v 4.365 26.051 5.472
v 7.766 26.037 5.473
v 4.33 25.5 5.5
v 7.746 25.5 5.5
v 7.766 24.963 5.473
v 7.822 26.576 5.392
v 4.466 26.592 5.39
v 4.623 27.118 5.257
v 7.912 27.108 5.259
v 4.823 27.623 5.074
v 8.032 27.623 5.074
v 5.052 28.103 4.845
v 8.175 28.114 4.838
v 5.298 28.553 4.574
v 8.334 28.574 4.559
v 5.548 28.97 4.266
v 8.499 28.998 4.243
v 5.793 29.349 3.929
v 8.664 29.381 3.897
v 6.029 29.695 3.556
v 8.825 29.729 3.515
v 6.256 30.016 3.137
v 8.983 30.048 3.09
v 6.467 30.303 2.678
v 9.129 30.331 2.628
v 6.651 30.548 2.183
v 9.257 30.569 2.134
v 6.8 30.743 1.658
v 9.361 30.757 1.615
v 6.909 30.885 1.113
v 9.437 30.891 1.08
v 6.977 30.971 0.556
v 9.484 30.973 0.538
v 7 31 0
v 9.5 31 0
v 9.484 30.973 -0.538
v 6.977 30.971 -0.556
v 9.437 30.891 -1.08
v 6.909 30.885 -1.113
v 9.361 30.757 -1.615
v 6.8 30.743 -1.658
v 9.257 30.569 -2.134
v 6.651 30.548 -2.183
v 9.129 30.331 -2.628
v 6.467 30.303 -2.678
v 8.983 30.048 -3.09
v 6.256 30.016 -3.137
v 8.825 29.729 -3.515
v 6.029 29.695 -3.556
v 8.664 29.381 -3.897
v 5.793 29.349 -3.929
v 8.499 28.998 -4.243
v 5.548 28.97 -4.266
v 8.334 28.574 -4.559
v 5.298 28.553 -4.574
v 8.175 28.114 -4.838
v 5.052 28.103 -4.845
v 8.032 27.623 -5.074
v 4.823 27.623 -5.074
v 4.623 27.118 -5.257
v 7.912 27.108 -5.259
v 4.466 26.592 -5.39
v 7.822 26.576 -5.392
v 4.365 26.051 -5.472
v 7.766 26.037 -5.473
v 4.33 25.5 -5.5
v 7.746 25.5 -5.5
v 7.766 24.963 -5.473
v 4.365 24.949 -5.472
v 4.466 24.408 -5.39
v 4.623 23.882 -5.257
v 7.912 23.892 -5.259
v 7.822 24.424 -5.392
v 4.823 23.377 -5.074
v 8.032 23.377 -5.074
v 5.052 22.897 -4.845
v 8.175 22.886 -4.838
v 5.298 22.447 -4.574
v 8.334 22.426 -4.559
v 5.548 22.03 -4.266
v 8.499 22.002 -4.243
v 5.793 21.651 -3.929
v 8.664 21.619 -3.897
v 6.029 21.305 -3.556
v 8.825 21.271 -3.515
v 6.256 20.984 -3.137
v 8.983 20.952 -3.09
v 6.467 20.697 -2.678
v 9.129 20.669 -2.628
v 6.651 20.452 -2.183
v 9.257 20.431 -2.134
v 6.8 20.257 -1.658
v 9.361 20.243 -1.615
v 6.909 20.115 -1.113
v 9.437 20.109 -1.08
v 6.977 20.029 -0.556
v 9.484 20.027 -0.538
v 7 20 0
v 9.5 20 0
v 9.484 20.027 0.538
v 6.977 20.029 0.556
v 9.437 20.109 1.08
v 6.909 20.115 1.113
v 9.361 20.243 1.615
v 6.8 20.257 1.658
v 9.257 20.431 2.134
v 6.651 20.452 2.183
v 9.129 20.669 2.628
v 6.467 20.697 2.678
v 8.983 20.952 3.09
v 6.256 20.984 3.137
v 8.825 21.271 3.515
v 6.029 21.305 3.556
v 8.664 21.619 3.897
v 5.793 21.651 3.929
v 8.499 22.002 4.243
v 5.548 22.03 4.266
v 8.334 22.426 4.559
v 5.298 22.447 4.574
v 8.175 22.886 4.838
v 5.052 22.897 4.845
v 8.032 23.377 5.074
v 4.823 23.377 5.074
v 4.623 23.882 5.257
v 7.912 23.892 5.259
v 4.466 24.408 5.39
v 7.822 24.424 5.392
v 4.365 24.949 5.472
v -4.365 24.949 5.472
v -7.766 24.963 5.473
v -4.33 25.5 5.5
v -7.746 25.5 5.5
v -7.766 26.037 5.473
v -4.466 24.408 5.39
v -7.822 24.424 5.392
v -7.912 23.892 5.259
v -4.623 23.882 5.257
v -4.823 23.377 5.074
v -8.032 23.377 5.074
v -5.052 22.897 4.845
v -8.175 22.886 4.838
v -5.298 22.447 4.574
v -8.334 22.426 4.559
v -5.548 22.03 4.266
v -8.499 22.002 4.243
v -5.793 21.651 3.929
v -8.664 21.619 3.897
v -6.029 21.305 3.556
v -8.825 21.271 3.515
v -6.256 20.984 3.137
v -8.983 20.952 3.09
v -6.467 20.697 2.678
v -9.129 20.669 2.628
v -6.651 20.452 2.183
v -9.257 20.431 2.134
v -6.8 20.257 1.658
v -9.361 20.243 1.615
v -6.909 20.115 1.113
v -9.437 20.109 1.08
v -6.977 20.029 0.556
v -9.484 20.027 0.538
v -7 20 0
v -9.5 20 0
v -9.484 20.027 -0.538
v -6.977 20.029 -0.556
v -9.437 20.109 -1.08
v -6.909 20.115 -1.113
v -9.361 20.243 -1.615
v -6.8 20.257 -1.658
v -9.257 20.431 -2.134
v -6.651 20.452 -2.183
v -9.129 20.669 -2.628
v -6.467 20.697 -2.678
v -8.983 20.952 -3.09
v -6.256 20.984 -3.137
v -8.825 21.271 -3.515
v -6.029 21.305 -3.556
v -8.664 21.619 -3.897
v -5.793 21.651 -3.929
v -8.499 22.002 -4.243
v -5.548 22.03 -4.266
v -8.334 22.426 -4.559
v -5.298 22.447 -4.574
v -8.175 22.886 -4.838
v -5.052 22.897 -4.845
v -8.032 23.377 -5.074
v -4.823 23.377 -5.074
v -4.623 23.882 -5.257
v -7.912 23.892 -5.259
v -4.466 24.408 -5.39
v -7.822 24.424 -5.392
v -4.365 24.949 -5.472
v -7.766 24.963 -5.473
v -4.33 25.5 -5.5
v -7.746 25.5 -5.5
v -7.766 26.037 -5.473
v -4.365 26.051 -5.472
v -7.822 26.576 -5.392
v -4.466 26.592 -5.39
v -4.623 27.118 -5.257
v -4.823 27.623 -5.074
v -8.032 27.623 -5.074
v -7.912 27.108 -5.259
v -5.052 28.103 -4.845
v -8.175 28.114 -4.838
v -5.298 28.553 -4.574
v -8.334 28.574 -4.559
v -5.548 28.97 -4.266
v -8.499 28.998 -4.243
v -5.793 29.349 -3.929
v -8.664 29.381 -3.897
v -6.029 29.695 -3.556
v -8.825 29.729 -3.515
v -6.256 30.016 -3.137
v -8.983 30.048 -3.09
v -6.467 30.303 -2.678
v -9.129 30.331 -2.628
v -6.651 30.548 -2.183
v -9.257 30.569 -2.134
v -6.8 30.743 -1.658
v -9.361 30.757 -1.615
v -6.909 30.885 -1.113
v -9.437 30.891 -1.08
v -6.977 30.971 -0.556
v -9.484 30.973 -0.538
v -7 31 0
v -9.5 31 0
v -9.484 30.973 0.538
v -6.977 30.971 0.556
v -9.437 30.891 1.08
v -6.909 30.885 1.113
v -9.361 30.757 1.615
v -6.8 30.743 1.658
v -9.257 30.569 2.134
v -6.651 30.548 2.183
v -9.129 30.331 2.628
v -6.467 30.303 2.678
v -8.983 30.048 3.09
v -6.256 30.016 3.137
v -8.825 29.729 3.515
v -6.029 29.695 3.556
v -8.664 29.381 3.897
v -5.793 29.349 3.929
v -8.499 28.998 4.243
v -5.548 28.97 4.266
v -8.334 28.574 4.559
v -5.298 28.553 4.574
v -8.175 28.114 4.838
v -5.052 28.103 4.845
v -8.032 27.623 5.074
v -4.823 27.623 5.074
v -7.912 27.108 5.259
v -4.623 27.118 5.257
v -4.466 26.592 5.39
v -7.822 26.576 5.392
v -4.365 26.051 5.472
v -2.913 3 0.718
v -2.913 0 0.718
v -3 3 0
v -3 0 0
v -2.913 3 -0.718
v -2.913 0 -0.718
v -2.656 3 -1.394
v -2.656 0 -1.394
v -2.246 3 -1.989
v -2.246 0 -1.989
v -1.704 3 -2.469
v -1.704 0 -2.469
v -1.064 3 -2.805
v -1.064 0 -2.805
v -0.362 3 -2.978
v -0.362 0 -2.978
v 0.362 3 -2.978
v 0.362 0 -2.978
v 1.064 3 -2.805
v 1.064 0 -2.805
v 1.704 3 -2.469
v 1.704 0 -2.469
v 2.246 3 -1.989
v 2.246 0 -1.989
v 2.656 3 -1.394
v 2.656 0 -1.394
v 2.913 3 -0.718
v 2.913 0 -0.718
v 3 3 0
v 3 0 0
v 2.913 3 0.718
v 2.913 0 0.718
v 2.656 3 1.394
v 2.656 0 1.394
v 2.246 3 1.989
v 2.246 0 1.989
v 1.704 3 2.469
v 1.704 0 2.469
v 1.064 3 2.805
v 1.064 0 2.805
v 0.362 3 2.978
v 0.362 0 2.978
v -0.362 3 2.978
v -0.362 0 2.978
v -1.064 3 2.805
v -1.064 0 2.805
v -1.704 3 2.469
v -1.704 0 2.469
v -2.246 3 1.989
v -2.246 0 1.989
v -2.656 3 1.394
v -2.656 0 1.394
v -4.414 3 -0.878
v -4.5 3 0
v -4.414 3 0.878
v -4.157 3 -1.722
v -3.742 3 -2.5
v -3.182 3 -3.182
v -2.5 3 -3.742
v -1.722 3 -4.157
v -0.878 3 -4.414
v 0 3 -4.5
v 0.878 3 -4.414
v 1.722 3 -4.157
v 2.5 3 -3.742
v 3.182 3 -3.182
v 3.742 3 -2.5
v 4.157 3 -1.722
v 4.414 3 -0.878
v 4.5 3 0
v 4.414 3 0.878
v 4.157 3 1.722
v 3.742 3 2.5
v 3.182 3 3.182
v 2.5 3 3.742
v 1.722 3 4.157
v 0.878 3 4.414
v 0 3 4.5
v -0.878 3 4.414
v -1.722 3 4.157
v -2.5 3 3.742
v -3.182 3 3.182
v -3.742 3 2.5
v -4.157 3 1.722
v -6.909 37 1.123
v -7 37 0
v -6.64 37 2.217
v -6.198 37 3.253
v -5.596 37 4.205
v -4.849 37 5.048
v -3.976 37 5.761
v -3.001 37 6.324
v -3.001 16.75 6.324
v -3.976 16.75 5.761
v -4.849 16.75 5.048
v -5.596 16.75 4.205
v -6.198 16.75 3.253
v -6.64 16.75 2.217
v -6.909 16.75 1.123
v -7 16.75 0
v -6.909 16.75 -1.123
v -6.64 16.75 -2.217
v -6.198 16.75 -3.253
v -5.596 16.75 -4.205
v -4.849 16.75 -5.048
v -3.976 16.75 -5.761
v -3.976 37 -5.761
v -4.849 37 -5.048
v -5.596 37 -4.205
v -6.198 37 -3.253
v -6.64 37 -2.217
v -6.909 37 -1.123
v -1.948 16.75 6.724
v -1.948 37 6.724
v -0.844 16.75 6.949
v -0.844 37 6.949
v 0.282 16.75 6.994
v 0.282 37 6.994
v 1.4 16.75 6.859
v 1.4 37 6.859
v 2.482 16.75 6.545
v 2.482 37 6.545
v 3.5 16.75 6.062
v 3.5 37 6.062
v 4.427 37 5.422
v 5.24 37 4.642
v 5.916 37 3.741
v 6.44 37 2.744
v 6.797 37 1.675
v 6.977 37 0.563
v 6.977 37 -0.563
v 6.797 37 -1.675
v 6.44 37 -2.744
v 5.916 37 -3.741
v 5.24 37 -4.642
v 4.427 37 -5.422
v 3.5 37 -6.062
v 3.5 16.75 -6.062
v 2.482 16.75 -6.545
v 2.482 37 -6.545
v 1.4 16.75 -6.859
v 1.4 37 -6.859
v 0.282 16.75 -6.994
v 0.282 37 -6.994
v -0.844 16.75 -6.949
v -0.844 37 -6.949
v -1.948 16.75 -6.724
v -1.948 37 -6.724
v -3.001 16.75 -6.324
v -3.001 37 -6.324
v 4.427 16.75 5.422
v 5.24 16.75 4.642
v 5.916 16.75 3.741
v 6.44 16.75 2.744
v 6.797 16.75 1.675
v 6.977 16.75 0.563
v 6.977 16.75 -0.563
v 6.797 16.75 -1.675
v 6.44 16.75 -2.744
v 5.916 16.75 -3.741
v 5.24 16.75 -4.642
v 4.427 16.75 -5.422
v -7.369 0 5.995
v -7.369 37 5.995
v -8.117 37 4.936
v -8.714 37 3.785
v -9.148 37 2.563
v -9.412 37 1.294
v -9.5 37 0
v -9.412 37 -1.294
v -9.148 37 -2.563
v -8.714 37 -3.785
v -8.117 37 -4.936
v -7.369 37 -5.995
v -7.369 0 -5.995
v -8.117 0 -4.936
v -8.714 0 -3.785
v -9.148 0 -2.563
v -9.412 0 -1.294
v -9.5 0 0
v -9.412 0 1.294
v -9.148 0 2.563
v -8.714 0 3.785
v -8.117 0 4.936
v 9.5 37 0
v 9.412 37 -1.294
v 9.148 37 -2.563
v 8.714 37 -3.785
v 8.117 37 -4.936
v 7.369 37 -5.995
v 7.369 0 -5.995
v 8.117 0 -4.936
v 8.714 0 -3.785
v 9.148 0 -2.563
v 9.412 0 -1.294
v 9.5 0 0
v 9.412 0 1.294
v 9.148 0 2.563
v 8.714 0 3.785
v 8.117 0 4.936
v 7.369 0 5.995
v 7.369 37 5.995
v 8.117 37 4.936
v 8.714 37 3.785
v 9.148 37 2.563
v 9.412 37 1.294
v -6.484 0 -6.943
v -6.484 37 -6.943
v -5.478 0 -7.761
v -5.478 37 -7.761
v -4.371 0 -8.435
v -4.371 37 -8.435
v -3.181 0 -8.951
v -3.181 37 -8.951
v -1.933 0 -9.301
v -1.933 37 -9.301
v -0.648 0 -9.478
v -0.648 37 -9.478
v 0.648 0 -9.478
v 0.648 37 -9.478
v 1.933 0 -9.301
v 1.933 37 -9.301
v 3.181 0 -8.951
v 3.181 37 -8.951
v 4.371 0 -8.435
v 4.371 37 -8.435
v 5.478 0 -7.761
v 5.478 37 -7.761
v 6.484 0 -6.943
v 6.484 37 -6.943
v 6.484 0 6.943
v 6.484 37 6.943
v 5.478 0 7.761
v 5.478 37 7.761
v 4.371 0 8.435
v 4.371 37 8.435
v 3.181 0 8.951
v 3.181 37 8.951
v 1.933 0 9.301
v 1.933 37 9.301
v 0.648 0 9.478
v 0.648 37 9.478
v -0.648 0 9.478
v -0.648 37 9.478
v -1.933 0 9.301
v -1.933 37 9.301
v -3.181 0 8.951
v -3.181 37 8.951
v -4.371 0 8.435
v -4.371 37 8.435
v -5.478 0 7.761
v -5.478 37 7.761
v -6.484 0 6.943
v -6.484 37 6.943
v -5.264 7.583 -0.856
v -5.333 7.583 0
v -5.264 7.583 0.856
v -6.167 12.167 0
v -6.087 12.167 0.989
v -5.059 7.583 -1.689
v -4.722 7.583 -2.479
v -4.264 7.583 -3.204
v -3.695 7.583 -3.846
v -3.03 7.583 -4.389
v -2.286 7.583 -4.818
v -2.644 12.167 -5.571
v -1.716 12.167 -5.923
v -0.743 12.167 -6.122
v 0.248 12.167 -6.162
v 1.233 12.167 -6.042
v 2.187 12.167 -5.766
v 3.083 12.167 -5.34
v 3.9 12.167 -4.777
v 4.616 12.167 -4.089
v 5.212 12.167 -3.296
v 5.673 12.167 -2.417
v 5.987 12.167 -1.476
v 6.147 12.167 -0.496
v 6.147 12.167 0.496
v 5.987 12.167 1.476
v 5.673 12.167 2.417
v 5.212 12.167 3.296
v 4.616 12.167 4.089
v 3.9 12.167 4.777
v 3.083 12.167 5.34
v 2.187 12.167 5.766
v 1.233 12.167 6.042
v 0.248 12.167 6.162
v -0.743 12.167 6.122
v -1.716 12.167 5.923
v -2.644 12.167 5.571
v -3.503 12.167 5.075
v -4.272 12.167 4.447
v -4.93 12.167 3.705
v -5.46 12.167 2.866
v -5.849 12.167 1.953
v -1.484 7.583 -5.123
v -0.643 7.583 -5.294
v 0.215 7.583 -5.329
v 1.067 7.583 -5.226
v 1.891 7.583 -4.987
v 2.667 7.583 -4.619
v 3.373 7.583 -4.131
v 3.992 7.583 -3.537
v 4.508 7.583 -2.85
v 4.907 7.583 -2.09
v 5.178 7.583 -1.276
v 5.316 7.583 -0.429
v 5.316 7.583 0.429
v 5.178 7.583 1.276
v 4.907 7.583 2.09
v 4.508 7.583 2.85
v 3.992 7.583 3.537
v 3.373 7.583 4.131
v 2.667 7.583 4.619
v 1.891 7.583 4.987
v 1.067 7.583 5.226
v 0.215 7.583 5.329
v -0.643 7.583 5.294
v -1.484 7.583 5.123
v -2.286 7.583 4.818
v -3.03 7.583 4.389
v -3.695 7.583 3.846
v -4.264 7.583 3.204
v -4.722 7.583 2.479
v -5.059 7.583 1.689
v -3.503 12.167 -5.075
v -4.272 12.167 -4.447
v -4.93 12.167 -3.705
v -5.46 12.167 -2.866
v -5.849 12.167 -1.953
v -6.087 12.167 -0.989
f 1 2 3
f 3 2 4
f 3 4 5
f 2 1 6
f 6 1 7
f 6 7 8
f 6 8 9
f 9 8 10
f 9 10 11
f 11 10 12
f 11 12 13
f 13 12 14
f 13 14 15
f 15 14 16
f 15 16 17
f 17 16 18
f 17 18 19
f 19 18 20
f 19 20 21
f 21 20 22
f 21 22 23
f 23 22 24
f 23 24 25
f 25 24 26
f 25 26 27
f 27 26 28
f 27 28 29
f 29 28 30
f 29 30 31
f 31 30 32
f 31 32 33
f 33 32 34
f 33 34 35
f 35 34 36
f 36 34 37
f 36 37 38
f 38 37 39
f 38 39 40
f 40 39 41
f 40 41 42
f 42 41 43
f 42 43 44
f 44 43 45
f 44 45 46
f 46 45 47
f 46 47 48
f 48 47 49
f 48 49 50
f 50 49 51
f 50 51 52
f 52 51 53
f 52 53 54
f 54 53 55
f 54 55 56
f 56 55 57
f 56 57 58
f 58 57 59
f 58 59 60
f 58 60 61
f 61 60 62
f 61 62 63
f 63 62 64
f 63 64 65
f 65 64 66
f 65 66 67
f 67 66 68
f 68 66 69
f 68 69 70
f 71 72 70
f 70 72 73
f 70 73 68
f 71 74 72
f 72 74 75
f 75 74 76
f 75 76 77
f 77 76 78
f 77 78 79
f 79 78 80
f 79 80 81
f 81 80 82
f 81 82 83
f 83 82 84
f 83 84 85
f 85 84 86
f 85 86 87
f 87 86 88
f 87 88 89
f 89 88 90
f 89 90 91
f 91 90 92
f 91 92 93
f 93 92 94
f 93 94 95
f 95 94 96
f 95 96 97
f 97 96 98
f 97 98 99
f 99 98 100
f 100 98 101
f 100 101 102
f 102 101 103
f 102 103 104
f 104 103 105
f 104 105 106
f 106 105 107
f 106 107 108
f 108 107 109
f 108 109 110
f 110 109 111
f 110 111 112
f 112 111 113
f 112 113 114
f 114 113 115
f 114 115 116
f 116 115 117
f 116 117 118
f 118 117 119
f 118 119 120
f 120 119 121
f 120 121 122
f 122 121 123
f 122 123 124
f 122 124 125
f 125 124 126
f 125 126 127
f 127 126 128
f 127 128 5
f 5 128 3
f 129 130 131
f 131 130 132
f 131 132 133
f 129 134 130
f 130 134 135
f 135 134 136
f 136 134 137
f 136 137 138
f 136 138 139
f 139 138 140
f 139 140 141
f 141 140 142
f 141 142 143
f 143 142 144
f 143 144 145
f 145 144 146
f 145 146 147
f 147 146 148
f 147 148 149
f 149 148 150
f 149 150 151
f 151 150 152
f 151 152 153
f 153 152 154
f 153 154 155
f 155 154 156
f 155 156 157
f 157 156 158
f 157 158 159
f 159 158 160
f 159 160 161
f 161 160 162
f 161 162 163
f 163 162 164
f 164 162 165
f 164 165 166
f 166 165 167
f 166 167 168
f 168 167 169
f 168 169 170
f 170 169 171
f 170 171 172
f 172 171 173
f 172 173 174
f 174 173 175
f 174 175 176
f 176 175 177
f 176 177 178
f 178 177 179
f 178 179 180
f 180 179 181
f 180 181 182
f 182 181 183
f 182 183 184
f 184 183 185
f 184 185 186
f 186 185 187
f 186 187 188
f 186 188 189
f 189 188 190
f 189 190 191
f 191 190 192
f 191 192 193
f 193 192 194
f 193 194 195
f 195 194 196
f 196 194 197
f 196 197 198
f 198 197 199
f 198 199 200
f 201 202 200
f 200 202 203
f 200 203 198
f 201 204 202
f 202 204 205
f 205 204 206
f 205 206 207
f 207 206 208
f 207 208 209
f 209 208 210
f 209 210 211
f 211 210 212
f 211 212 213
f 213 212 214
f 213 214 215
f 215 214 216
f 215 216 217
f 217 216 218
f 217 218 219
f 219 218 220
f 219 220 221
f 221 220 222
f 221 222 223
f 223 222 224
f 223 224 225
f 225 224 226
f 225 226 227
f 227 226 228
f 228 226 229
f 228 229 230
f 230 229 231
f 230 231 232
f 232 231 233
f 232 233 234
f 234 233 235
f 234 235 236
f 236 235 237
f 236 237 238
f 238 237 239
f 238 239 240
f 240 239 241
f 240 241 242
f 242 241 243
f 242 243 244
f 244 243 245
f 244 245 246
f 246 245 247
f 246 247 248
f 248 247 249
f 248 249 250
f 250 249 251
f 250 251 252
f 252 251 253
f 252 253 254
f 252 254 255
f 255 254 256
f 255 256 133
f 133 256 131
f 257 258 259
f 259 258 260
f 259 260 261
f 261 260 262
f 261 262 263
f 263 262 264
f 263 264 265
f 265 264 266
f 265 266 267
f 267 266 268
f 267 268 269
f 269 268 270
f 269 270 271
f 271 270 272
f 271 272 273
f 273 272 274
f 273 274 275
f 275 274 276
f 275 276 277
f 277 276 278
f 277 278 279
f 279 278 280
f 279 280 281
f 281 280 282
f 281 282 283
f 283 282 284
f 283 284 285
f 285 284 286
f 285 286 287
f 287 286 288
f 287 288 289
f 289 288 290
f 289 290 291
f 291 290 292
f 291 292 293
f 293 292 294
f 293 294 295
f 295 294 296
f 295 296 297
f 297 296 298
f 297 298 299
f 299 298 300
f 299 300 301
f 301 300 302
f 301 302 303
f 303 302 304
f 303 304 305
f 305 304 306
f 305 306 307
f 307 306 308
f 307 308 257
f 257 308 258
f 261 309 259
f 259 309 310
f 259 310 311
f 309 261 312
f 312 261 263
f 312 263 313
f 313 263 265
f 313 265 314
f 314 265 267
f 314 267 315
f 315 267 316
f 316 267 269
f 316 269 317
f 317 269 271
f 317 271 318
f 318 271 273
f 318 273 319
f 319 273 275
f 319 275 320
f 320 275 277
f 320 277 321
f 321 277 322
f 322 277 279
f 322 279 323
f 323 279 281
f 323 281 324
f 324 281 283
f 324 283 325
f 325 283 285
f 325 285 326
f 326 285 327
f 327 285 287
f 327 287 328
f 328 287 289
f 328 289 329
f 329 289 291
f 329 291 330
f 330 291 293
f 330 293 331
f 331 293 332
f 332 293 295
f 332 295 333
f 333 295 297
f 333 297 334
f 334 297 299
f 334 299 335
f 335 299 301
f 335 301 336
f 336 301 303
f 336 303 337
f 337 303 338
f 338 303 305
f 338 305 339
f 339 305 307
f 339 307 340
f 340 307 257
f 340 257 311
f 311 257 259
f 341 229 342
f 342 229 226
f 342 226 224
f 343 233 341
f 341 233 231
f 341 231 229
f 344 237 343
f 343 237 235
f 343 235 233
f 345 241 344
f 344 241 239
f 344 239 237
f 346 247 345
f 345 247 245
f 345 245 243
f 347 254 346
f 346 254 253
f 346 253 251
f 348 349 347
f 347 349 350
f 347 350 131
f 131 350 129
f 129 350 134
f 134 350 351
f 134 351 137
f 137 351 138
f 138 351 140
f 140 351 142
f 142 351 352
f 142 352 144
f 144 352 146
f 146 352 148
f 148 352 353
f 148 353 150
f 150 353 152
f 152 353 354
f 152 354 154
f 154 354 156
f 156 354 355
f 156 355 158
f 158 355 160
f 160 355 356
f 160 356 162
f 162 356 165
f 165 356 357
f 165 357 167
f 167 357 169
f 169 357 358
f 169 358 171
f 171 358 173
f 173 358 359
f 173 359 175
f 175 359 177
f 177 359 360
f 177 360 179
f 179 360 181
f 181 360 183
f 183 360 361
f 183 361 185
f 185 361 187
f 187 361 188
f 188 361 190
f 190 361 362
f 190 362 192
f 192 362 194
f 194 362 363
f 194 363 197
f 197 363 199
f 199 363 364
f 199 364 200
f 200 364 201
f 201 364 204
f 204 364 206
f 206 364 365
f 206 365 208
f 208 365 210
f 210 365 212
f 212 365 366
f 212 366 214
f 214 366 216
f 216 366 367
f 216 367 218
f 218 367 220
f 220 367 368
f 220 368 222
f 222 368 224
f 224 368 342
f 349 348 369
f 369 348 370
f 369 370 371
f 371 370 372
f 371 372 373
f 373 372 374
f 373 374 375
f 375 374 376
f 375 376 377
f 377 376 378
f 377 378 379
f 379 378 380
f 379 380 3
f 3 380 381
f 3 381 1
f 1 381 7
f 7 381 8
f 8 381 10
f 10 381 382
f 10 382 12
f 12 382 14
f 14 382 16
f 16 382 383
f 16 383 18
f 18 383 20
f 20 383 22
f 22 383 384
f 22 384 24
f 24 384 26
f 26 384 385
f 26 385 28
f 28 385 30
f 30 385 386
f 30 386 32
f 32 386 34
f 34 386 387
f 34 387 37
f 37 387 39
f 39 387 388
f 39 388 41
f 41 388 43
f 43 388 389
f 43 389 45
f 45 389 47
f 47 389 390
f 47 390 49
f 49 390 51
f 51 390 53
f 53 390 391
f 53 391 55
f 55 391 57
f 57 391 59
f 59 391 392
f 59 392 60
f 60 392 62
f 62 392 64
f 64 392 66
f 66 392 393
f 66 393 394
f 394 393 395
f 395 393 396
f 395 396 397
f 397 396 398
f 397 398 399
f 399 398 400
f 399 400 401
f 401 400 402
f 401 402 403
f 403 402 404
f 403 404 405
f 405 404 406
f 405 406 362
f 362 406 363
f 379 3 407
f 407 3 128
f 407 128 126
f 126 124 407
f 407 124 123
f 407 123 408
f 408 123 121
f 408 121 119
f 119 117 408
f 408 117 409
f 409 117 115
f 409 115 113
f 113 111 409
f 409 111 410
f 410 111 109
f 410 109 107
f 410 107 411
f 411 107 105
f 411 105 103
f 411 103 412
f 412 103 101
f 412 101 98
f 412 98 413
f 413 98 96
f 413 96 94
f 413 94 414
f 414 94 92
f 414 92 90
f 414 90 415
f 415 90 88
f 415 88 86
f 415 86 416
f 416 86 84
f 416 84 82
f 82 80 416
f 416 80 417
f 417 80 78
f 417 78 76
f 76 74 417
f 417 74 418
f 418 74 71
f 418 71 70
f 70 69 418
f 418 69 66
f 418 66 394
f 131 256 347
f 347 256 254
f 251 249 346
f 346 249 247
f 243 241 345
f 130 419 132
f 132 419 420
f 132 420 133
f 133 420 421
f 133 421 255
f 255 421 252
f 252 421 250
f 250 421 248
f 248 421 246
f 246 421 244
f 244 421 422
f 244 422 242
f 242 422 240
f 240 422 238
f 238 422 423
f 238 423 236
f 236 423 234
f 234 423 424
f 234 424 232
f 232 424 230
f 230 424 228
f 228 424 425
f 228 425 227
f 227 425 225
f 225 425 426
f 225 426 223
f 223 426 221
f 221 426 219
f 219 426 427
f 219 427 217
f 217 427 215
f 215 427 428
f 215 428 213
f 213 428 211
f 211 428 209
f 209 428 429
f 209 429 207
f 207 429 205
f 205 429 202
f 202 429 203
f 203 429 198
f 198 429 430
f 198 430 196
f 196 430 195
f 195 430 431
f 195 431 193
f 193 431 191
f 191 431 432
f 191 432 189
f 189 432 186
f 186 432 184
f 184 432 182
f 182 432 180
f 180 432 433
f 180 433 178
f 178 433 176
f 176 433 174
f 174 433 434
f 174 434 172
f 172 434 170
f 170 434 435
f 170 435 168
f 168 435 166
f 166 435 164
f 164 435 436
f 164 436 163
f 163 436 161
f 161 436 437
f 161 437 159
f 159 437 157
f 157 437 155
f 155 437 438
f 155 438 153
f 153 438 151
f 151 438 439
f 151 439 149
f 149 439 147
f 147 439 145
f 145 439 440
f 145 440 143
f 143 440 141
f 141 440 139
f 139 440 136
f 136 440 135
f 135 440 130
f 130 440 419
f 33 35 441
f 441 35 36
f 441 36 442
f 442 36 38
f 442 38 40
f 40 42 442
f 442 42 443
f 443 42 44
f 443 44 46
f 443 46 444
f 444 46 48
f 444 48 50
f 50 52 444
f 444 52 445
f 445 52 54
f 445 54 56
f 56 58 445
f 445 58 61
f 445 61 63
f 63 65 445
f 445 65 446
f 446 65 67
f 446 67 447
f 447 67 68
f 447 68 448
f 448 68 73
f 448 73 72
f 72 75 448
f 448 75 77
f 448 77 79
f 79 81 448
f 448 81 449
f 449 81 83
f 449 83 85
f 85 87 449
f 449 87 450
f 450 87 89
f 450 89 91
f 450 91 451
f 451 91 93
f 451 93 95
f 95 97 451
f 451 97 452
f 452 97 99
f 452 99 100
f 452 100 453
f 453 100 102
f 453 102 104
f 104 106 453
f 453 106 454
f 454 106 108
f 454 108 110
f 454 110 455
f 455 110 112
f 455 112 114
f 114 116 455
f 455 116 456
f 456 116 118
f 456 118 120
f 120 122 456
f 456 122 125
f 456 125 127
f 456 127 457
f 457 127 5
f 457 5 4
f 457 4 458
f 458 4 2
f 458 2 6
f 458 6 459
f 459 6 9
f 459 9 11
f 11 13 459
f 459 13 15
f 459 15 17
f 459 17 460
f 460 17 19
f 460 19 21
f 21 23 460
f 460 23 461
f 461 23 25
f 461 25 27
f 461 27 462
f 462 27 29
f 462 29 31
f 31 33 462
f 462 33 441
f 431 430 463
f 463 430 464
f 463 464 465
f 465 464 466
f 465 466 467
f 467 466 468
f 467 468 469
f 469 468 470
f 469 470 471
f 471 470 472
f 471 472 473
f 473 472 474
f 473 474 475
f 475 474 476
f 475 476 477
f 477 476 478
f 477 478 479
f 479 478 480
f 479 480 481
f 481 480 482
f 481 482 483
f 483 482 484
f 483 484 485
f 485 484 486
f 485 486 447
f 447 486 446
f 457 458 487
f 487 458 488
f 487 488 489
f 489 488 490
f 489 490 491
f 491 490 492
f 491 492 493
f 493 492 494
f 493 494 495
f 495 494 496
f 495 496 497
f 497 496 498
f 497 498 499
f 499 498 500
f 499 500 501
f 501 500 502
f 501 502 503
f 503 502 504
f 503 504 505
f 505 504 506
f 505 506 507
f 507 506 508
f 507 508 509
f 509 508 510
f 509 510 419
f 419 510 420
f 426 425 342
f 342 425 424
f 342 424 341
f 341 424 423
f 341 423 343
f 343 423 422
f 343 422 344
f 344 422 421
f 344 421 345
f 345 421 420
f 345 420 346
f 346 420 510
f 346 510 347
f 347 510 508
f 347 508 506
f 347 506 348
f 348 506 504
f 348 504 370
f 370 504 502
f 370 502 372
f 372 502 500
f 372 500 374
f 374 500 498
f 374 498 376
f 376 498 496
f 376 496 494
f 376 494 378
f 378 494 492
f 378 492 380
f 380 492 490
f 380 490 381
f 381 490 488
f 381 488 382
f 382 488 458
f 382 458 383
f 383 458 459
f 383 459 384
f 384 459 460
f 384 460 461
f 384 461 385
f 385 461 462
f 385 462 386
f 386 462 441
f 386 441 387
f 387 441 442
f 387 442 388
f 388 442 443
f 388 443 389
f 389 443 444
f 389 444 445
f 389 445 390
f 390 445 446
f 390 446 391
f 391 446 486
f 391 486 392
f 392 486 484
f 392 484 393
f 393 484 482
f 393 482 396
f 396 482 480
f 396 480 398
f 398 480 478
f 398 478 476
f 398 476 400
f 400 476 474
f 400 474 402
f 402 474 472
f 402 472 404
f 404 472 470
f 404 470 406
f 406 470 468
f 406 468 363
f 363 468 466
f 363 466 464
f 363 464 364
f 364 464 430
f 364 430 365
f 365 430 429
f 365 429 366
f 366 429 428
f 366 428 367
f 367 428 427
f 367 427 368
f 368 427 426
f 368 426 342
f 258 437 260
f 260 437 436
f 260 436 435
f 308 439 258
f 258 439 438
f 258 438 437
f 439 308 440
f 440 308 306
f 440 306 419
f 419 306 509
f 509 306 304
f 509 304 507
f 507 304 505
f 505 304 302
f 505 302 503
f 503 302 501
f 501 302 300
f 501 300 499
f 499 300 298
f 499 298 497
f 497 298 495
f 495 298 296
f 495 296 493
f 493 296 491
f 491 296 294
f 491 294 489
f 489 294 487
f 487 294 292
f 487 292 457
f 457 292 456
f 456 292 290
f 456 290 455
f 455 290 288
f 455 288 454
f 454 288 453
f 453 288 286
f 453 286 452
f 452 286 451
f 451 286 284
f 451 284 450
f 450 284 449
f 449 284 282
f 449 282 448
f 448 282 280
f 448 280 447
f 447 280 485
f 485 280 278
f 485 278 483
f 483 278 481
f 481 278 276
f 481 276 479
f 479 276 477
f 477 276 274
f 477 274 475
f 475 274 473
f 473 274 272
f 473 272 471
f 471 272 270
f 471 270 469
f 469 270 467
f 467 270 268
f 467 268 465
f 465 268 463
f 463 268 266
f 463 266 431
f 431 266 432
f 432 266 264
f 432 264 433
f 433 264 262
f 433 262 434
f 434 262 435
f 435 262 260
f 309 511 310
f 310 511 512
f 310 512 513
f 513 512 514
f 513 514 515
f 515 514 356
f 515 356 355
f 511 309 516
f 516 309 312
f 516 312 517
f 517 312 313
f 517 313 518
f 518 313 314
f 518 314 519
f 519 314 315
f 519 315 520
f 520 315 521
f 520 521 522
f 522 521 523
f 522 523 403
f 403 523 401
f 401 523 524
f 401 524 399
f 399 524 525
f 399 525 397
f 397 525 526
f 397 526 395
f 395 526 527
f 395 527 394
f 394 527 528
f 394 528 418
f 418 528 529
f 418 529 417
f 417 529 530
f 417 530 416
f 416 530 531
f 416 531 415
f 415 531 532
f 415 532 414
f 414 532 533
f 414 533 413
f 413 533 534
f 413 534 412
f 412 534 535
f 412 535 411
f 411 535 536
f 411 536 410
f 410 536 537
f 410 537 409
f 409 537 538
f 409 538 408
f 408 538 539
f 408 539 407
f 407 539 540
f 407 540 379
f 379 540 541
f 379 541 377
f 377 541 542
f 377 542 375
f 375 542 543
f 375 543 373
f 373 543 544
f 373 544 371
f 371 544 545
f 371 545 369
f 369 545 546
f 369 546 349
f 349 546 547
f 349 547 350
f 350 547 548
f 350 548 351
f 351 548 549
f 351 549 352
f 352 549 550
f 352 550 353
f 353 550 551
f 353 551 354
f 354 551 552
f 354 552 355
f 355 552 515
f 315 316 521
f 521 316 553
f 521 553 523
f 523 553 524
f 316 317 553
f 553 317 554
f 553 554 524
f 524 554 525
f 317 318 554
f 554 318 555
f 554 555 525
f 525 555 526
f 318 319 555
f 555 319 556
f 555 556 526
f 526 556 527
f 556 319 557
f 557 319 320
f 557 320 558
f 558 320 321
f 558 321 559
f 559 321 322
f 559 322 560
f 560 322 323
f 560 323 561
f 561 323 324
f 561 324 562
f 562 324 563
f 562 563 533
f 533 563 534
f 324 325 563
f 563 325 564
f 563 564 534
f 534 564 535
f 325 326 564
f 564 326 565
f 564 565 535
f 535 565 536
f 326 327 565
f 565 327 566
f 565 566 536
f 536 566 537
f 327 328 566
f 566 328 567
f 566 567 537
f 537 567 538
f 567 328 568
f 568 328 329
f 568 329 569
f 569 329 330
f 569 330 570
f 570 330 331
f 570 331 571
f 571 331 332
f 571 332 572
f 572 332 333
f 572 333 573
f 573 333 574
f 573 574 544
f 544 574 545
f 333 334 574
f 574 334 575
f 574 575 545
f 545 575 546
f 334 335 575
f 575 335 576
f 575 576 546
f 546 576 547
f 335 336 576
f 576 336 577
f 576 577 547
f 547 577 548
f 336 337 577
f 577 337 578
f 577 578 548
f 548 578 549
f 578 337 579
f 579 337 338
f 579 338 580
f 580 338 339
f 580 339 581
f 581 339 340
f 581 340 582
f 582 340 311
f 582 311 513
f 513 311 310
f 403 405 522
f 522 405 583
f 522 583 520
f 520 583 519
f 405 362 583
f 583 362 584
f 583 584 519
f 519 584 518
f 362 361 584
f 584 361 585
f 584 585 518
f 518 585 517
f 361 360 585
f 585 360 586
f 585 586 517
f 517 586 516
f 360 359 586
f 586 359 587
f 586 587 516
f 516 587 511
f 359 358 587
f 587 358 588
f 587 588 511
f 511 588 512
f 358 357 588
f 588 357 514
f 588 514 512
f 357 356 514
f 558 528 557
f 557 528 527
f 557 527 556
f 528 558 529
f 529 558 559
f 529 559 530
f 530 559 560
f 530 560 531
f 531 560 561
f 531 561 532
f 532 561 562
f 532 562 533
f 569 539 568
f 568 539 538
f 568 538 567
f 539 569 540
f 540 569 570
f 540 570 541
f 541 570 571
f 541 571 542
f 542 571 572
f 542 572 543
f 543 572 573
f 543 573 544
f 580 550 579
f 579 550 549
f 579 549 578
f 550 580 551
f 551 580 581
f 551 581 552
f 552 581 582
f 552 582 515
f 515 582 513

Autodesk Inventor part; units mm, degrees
ref_plane "YZ Plane" through (0, 0, 0) normal (1, 0, 0) x (0, 1, 0)
ref_plane "XZ Plane" through (0, 0, 0) normal (0, 1, 0) x (-1, 0, 0)
sketch "Sketch1" plane through (0, 0, 0) normal (0, 1, 0) x (-1, 0, 0)
  circle A0 centre (0, 0) radius 9.5
  circle A1 centre (0, 0) radius 7
  circle A2 centre (0, 0) radius 3
  dimension "d0" = 19
  dimension "d1" = 14
  dimension "d6" = 6
extrude "Extrusion1" add sketch "Sketch1" along normal blind 37 contours A0
extrude "Extrusion2" add sketch "Sketch1" along normal blind 3 contours A1
ref_plane "Work Plane1" through (9.5, 37, 0) normal (1, 0, 0) x (0, 1, 0)
sketch "Sketch2" plane through (9.5, 37, 0) normal (1, 0, 0) x (0, 1, 0)
  circle A0 centre (-11.5, 0) radius 5.5
  line L0 (0, -9.5) -> (0, 9.5) projected
  point P0 (-37, 0)
  point P1 (-6, 0)
  point P2 (0, 0)
  dimension "d7" = 11
  dimension "d9" = 6
extrude "Extrusion3" cut sketch "Sketch2" against normal through all
chamfer "Chamfer2" distance 13.75 distance2 2.5 1 edges at (7, 3, 0) measured on face at (3.14, 21.6954, -6.2562)
properties part number "Mocowanie_do_wieszaka_w_kuchni"
